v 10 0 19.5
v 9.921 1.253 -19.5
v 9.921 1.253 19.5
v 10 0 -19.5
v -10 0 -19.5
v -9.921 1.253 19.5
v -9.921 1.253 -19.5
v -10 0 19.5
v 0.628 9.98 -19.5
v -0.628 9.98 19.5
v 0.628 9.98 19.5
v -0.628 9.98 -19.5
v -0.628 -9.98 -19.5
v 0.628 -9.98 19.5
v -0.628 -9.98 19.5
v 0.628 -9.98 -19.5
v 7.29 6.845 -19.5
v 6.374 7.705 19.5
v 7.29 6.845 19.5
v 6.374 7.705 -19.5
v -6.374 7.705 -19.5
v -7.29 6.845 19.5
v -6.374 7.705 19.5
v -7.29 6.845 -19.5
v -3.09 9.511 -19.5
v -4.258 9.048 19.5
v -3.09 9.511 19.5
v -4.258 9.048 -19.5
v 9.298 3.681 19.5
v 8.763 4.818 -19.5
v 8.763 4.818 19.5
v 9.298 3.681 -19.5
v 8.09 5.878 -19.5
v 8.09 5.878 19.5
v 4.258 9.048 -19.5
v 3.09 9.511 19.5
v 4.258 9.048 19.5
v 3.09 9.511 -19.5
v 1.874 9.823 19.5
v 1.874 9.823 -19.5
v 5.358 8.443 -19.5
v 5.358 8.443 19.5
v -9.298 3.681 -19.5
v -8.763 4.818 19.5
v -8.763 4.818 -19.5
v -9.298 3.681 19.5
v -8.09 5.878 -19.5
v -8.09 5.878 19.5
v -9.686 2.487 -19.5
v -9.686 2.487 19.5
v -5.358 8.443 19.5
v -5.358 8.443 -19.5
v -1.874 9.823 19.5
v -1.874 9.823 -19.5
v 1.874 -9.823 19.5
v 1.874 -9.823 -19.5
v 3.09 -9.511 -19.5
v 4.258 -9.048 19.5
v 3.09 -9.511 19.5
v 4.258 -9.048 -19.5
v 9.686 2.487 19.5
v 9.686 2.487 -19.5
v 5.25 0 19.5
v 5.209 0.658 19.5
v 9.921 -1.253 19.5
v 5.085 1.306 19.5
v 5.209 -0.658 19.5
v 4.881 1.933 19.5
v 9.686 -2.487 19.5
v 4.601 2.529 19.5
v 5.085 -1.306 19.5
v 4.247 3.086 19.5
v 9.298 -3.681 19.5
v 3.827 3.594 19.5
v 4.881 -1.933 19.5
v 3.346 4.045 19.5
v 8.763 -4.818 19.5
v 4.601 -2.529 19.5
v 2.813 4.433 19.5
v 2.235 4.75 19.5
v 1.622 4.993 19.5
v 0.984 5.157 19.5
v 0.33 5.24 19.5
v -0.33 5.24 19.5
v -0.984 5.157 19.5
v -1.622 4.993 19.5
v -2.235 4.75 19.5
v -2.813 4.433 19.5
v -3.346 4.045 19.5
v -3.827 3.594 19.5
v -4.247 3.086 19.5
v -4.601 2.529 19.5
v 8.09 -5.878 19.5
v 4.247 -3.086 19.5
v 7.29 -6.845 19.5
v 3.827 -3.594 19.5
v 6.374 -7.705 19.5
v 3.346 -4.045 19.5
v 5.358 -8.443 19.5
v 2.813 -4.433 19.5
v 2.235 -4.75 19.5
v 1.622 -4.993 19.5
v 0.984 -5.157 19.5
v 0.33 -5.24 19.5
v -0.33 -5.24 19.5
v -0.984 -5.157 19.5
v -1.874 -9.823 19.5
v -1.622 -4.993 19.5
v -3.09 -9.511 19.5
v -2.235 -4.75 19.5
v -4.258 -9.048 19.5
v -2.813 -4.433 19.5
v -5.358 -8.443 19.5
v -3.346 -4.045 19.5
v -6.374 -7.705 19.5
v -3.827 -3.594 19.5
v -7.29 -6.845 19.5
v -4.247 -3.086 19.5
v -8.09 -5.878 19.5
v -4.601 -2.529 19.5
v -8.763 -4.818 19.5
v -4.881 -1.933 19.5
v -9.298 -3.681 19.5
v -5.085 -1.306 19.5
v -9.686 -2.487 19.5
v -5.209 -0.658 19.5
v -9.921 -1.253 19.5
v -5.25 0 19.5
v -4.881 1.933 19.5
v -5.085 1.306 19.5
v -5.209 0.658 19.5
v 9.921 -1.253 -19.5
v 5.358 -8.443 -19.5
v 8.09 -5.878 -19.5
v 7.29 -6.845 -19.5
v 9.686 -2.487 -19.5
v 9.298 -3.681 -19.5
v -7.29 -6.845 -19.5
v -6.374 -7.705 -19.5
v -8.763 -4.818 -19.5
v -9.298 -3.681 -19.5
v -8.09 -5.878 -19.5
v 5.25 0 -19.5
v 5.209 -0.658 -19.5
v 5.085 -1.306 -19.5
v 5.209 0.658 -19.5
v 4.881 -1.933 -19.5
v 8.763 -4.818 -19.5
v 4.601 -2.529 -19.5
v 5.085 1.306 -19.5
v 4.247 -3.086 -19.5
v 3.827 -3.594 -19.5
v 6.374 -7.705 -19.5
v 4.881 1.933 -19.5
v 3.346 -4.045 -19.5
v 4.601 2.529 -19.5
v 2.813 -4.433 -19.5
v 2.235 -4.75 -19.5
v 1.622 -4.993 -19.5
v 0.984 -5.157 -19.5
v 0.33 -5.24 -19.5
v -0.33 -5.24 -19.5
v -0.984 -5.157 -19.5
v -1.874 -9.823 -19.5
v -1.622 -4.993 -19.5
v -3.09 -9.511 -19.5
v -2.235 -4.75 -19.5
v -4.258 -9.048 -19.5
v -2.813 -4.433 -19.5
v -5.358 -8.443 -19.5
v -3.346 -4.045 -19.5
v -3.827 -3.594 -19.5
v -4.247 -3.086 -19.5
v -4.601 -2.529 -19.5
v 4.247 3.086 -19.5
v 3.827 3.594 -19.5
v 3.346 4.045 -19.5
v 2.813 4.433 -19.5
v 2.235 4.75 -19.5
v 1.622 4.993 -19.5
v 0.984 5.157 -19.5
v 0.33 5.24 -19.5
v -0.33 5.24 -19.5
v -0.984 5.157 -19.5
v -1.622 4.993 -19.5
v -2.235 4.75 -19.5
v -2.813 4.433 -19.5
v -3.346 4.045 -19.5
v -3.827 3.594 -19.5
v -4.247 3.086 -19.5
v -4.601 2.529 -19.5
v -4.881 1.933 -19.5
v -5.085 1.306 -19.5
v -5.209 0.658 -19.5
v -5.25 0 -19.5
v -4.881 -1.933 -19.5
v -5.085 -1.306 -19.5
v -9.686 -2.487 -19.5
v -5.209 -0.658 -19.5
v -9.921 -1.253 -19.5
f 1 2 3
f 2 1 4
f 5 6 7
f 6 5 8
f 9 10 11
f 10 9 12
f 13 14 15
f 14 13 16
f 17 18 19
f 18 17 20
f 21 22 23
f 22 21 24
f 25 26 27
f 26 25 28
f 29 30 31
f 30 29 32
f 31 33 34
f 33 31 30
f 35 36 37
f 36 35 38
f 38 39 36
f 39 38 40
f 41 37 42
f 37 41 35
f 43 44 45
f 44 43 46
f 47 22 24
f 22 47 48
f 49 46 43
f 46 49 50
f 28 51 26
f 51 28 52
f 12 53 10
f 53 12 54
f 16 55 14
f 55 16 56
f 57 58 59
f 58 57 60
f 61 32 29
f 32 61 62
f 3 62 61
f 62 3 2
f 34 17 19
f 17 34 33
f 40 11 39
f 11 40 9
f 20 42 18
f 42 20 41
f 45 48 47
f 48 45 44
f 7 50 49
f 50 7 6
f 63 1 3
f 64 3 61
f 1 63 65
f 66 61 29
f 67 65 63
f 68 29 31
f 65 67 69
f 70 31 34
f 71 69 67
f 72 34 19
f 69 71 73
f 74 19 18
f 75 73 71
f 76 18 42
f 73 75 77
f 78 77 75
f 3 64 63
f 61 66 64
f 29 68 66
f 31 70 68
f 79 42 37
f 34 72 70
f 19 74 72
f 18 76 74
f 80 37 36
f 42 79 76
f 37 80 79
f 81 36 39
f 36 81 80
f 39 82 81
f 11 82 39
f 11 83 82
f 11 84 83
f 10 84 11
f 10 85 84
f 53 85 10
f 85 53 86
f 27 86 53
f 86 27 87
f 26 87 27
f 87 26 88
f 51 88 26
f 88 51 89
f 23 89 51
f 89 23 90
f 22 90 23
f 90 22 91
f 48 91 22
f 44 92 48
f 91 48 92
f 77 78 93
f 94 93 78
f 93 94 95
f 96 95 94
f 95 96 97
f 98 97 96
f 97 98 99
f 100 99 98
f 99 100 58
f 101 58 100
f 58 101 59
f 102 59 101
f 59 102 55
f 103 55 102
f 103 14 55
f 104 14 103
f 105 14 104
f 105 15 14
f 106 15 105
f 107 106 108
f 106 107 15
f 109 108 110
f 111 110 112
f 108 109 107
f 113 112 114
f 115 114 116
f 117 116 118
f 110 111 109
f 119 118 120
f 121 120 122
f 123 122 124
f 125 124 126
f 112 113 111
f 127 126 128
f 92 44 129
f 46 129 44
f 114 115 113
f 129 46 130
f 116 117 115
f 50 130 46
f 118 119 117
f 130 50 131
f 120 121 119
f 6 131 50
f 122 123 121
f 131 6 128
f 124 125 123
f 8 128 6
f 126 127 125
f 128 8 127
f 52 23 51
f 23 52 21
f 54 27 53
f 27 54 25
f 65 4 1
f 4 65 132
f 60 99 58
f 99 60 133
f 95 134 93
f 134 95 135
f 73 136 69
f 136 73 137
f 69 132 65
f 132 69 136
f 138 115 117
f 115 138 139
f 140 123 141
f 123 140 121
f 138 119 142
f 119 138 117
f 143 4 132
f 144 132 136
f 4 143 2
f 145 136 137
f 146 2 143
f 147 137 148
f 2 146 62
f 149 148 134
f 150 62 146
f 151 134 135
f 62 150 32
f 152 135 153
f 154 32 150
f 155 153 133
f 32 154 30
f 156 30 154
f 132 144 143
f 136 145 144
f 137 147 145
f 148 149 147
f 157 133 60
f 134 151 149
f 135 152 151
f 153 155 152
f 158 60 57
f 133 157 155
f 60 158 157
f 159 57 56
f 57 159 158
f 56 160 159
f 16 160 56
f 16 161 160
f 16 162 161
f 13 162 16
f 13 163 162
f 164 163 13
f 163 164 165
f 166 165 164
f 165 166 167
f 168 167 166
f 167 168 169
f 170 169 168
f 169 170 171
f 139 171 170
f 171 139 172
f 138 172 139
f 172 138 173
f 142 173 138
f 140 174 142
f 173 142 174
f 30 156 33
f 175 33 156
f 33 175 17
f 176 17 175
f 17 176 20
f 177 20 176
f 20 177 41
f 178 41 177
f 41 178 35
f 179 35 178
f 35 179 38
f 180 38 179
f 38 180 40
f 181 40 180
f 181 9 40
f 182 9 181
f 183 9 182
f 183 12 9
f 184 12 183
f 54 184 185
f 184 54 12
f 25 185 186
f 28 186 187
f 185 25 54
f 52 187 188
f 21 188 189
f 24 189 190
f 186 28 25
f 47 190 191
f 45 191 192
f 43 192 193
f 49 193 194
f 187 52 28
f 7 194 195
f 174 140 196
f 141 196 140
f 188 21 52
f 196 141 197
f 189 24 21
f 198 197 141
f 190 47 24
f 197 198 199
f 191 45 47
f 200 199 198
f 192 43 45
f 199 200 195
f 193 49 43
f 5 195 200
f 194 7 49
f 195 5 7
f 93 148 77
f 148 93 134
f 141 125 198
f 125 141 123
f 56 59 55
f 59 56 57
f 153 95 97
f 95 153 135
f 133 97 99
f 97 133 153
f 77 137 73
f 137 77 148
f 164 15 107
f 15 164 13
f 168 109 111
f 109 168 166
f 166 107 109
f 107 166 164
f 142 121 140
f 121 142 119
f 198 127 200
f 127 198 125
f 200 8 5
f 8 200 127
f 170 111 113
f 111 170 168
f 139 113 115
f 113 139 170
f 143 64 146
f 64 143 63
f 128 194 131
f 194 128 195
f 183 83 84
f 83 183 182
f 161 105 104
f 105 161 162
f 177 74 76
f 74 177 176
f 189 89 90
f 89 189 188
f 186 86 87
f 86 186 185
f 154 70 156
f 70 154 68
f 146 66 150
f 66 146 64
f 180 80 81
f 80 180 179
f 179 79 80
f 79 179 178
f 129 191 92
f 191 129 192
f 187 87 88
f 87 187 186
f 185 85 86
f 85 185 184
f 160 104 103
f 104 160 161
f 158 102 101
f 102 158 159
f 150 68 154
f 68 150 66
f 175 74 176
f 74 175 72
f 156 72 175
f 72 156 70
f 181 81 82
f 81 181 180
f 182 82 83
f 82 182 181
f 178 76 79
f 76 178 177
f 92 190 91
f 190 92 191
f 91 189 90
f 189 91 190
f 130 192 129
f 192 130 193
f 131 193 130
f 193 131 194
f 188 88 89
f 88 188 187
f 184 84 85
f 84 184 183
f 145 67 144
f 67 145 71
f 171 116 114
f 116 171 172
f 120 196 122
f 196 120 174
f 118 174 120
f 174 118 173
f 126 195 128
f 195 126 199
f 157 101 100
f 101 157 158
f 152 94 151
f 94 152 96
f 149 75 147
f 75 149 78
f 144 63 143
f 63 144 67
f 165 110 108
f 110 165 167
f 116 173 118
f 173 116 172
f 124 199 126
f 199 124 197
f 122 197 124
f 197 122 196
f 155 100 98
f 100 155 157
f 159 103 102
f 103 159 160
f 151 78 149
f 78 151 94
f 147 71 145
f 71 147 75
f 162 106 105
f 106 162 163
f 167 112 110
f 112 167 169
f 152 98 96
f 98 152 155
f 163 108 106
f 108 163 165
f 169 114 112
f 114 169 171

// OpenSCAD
$fn = 50;


difference() {
	union() {
		translate(v = [0, 0, -19.5000000000]) {
			cylinder(h = 39, r = 10.0000000000);
		}
	}
	union() {
		translate(v = [0, 0, -100.0000000000]) {
			cylinder(h = 200, r = 5.2500000000);
		}
	}
}
